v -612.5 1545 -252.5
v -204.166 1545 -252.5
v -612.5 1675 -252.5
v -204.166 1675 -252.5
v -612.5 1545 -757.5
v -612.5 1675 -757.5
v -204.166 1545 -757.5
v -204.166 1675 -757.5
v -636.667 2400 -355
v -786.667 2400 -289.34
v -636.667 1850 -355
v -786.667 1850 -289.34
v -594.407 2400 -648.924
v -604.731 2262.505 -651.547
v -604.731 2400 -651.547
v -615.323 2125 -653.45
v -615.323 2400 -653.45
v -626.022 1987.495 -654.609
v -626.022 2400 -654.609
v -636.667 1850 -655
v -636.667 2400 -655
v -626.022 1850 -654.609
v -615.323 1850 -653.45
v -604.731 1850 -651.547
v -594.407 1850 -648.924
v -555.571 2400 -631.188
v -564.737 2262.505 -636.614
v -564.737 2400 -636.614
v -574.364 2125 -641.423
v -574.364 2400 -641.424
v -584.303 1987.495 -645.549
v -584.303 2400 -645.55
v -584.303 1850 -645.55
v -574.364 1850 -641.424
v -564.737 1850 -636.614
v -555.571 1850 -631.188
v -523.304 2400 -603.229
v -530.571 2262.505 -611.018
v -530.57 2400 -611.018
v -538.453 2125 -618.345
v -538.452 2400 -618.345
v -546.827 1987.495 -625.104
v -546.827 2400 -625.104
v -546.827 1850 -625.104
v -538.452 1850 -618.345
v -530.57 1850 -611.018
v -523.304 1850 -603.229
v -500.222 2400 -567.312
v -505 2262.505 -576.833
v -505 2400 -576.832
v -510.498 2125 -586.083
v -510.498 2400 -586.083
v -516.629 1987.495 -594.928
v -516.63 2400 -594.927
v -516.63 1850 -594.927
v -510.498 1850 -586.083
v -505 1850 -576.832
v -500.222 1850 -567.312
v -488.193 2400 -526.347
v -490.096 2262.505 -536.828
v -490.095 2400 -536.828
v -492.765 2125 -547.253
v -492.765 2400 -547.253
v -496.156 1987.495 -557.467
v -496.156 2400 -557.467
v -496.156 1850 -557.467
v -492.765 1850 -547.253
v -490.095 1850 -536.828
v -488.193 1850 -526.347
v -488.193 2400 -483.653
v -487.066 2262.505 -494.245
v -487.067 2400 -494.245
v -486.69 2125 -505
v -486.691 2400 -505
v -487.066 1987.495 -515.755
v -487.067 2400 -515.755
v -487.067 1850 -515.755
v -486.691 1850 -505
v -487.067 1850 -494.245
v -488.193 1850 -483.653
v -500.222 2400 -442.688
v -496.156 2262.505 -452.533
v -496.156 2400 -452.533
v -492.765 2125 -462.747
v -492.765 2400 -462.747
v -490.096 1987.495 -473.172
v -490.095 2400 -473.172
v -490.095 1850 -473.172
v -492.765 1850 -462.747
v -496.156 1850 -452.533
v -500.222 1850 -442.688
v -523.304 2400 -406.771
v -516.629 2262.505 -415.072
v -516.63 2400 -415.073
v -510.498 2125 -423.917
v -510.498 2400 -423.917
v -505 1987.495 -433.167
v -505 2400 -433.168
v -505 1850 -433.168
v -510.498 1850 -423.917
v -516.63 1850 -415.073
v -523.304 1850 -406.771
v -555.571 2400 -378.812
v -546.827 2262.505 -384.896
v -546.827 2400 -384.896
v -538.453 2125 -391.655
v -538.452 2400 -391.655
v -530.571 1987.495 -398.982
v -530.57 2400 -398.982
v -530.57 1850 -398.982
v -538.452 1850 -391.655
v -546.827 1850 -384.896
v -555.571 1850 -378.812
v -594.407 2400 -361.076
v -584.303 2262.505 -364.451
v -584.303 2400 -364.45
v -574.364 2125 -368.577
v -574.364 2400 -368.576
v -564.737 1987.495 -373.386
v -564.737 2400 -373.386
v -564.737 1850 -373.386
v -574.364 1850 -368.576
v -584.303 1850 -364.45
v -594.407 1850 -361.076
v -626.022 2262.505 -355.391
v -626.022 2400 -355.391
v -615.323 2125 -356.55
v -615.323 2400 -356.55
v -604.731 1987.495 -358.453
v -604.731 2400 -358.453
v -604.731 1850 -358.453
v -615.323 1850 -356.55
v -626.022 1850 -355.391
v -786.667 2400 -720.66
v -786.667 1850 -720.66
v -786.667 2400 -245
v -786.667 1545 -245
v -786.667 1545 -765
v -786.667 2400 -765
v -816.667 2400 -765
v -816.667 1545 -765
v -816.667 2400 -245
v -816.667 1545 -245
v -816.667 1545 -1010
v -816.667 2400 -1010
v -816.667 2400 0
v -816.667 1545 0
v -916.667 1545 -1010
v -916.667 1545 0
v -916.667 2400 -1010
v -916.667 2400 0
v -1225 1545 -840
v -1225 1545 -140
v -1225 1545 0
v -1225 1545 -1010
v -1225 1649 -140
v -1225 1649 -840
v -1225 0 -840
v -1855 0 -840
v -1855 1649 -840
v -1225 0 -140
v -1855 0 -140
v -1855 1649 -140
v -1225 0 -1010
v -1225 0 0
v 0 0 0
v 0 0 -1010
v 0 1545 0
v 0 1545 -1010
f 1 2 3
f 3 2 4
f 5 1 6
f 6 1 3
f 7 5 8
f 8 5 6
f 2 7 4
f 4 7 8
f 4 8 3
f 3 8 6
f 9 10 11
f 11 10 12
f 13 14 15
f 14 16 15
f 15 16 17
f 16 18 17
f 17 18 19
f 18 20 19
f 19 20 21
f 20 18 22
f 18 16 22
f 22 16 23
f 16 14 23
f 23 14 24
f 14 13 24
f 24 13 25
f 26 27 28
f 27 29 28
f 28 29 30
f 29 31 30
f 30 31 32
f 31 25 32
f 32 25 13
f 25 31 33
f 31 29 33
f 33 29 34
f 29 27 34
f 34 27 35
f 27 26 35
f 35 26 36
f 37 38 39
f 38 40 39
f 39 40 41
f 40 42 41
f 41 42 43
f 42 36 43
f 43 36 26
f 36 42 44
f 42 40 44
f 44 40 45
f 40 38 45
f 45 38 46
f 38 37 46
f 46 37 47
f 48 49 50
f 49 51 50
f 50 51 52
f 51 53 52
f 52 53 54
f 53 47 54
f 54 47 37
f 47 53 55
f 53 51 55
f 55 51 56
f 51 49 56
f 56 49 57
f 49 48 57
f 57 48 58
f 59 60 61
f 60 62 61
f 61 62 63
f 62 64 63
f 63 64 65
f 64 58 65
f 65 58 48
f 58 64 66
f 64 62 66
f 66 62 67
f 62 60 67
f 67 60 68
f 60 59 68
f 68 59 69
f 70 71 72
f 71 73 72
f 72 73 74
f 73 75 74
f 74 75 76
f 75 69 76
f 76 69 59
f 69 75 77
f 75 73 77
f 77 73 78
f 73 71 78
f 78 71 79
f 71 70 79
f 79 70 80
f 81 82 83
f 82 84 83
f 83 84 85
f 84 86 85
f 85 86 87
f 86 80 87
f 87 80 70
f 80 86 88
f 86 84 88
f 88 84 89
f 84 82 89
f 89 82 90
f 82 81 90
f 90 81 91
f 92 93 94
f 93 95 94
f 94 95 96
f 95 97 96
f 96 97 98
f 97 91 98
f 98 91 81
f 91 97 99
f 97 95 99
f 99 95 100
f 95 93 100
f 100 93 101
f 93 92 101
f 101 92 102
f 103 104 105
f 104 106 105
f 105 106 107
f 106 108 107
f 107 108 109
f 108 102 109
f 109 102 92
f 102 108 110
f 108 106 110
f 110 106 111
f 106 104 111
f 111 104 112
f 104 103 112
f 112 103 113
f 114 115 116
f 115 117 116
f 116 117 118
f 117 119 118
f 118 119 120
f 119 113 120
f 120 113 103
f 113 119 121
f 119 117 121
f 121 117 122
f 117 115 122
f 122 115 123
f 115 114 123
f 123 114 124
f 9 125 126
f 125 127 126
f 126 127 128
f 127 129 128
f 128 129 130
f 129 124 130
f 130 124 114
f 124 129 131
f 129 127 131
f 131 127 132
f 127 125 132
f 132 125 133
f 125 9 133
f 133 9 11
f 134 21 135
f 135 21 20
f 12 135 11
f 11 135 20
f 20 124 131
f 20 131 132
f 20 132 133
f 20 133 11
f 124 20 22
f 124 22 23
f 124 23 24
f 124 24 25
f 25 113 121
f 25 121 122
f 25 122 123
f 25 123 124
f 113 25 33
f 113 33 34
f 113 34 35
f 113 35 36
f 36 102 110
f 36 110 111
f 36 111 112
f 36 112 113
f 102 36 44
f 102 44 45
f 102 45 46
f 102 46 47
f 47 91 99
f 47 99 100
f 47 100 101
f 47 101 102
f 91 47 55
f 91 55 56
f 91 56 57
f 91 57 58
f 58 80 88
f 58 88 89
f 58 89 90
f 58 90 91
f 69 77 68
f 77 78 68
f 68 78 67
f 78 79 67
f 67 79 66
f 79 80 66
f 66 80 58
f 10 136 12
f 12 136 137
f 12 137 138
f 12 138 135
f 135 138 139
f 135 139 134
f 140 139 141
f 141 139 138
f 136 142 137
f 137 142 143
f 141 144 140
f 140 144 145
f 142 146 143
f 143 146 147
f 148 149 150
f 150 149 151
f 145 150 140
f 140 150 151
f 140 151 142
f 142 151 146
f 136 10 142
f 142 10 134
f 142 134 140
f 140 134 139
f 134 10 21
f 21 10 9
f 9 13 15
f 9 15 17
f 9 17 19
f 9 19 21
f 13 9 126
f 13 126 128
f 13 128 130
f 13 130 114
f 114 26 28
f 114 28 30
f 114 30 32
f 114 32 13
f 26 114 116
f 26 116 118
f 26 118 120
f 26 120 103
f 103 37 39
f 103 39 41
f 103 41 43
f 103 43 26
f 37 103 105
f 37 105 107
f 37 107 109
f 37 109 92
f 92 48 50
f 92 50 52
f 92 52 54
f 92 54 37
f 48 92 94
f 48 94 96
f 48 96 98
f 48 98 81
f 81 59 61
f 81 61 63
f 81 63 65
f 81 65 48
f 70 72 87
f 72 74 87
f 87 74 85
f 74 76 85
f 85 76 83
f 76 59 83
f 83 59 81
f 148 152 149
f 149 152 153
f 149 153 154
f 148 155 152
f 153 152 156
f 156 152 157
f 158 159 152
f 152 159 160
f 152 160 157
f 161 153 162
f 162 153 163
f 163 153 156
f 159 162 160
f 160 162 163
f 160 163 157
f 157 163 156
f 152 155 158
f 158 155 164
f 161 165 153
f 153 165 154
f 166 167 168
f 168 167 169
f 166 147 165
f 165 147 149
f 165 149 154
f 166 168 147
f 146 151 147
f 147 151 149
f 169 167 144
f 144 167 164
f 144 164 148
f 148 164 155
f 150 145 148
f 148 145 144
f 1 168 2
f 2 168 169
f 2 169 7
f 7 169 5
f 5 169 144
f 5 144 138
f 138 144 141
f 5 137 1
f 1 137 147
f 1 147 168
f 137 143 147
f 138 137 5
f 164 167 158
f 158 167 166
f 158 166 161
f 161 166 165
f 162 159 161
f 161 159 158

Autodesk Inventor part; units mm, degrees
ref_plane "YZ Plane" through (0, 0, 0) normal (1, 0, 0) x (0, 1, 0)
ref_plane "XZ Plane" through (0, 0, 0) normal (0, 1, 0) x (-1, 0, 0)
ref_plane "XY Plane" through (0, 0, 0) normal (0, 0, 1) x (1, 0, 0)
sketch "Boceto1" plane through (0, 0, 0) normal (0, 1, 0) x (-1, 0, 0)
  line L0 (0, 0) -> (1225, 0)
  line L1 (1225, 0) -> (1225, -1010)
  line L2 (1225, -1010) -> (0, -1010)
  line L3 (0, -1010) -> (0, 0)
  dimension "d0" = 1225
  dimension "d1" = 1010
extrude "Extrusión1" add sketch "Boceto1" along normal blind 1545
sketch "Boceto2" plane through (0, 0, 0) normal (0, -1, 0) x (1, 0, 0)
  line L0 (0, 0) -> (0, -1010) construction
  line L1 (-1225, 0) -> (0, 0) construction
  line L2 (-1225, -1010) -> (-1225, 0) construction
  line L3 (0, -1010) -> (-1225, -1010) construction
  line L4 (-1225, -1010) -> (-1225, 0) construction
  line L5 (-1225, 0) -> (-1225, -140) construction
  line L6 (-1225, -140) -> (-1855, -140)
  line L7 (-1855, -140) -> (-1855, -840)
  line L8 (-1855, -840) -> (-1225, -840)
  line L9 (-1225, -840) -> (-1225, -140)
  dimension "d4" = 140
  dimension "d5" = 630
  dimension "d6" = 700
extrude "Extrusión2" add sketch "Boceto2" against normal blind 1649
sketch "Boceto3" plane through (0, 1545, 0) normal (0, 1, 0) x (1, 0, 0)
  line L0 (0, 0) -> (0, 1010) construction
  line L1 (0, 1010) -> (-1225, 1010) construction
  line L2 (-1225, 1010) -> (-1225, 840) construction
  line L3 (-1225, 840) -> (-1225, 140) construction
  line L4 (-1225, 140) -> (-1225, 0) construction
  line L5 (-1225, 0) -> (0, 0) construction
  line L6 (0, 1010) -> (-1225, 1010) construction
  line L7 (-1225, 1010) -> (-816.6667, 1010) construction
  line L8 (-1225, 0) -> (0, 0) projected
  line L9 (-816.6667, 1010) -> (-916.6667, 1010)
  line L10 (-916.6667, 1010) -> (-916.6667, 0)
  line L11 (-916.6667, 0) -> (-816.6667, 0)
  line L12 (-816.6667, 0) -> (-816.6667, 1010)
  point P0 (-816.6667, 0)
  dimension "d9" = 408.3333
  dimension "d10" = 100
extrude "Extrusión3" add sketch "Boceto3" along normal blind 855
sketch "Boceto4" plane through (0, 2400, 0) normal (0, 1, 0) x (1, 0, 0)
  line L0 (-916.6667, 0) -> (-816.6667, 0) construction
  line L1 (-816.6667, 0) -> (-816.6667, 1010) construction
  line L2 (-816.6667, 1010) -> (-916.6667, 1010) construction
  line L3 (-916.6667, 1010) -> (-916.6667, 0) construction
  line L4 (-916.6667, 1010) -> (-916.6667, 0) construction
  line L5 (-916.6667, 505) -> (-816.6667, 505) construction
  line L6 (-816.6667, 0) -> (-816.6667, 1010) construction
  line L7 (-816.6667, 505) -> (-816.6667, 245) construction
  line L8 (-816.6667, 245) -> (-786.6667, 245)
  line L9 (-786.6667, 245) -> (-786.6667, 765)
  line L10 (-786.6667, 765) -> (-816.6667, 765)
  line L11 (-816.6667, 765) -> (-816.6667, 245)
  point P0 (0, 0)
  dimension "d14" = 260
  dimension "d15" = 30
  dimension "d16" = 520
extrude "Extrusión4" add sketch "Boceto4" against normal blind 855
sketch "Boceto5" plane through (0, 2400, 0) normal (0, 1, 0) x (1, 0, 0)
  line L0 (-916.6667, 1010) -> (-916.6667, 0) construction
  line L1 (-916.6667, 1010) -> (-916.6667, 0) construction
  line L2 (-916.6667, 0) -> (-816.6667, 0) construction
  line L3 (-816.6667, 0) -> (-816.6667, 245) construction
  line L4 (-816.6667, 245) -> (-786.6667, 245) construction
  line L5 (-786.6667, 245) -> (-786.6667, 765) construction
  line L6 (-786.6667, 765) -> (-816.6667, 765) construction
  line L7 (-816.6667, 765) -> (-816.6667, 1010) construction
  line L8 (-816.6667, 1010) -> (-916.6667, 1010) construction
  line L9 (-916.6667, 505) -> (-786.6667, 505) construction
  line L10 (-786.6667, 505) -> (-486.6667, 505) construction
  circle A0 centre (-636.6667, 505) radius 150
  line L11 (-786.6667, 765) -> (-786.6667, 245) construction
  line L12 (-548.6024, 383.5723) -> (-724.731, 383.5723) construction
  line L13 (-724.731, 383.5723) -> (-724.731, 626.4277) construction
  line L14 (-724.731, 626.4277) -> (-548.6024, 626.4277) construction
  line L15 (-548.6024, 626.4277) -> (-548.6024, 383.5723) construction
  line L16 (-786.6667, 289.3401) -> (-786.6667, 720.6599)
  line L17 (-636.6667, 355) -> (-786.6667, 289.3401)
  line L18 (-636.6667, 655) -> (-786.6667, 720.6599)
  point P0 (0, 0)
  dimension "d19" = 300
extrude "Extrusión5" add sketch "Boceto5" against normal blind 550
sketch "Boceto6" plane through (0, 1545, 0) normal (0, 1, 0) x (1, 0, 0)
  line L0 (-786.6667, 245) -> (-816.6667, 245) construction
  line L1 (-816.6667, 245) -> (-816.6667, 0) construction
  line L2 (-816.6667, 0) -> (0, 0) construction
  line L3 (0, 0) -> (0, 1010) construction
  line L4 (0, 1010) -> (-816.6667, 1010) construction
  line L5 (-816.6667, 1010) -> (-816.6667, 765) construction
  line L6 (-816.6667, 765) -> (-786.6667, 765) construction
  line L7 (-786.6667, 765) -> (-786.6667, 245) construction
  line L8 (-816.6667, 0) -> (0, 0) construction
  line L9 (-816.6667, 0) -> (-612.4999, 0) construction
  line L10 (-816.6667, 252.5) -> (-816.6667, 0) construction
  line L11 (-204.1664, 757.5) -> (0.0003, 757.5) construction
  line L12 (0.0003, 757.5) -> (0.0003, 1010) construction
  line L13 (0.0003, 1010) -> (-204.1664, 1010) construction
  line L14 (-204.1664, 1010) -> (-204.1664, 757.5) construction
  line L15 (-816.6667, 0) -> (-612.4999, 0) construction
  line L16 (-612.4999, 0) -> (-612.4999, 252.5) construction
  line L17 (-612.4999, 252.5) -> (-816.6667, 252.5) construction
  line L18 (-816.6667, 252.5) -> (-816.6667, 0) construction
  line L19 (-612.4999, 252.5) -> (-204.1664, 252.5)
  line L20 (-204.1664, 252.5) -> (-204.1664, 757.5)
  line L21 (-204.1664, 757.5) -> (-612.4999, 757.5)
  line L22 (-612.4999, 757.5) -> (-612.4999, 252.5)
  dimension "d26" = 204.1668
  dimension "d27" = 252.5
  dimension "d28" = 204.1668
  dimension "d29" = 252.5
extrude "Extrusión6" add sketch "Boceto6" along normal blind 130
sketch "Boceto7" plane through (0, 1675, 0) normal (0, 1, 0) x (1, 0, 0)
  line L0 (-204.1664, 757.5) -> (-612.4999, 757.5) construction
  line L1 (-612.4999, 757.5) -> (-612.4999, 252.5) construction
  line L2 (-612.4999, 252.5) -> (-204.1664, 252.5) construction
  line L3 (-204.1664, 252.5) -> (-204.1664, 757.5) construction
  circle A0 centre (-408.3332, 505) radius 30
  line L4 (0.369, 1326.8253) -> (-977.0627, -418.0608) projected
  line L5 (40.9134, 1306.9835) -> (-936.5183, -437.9025) projected
  point P0 (0, 0)
  dimension "d32" = 60
properties part number "multiejes"
